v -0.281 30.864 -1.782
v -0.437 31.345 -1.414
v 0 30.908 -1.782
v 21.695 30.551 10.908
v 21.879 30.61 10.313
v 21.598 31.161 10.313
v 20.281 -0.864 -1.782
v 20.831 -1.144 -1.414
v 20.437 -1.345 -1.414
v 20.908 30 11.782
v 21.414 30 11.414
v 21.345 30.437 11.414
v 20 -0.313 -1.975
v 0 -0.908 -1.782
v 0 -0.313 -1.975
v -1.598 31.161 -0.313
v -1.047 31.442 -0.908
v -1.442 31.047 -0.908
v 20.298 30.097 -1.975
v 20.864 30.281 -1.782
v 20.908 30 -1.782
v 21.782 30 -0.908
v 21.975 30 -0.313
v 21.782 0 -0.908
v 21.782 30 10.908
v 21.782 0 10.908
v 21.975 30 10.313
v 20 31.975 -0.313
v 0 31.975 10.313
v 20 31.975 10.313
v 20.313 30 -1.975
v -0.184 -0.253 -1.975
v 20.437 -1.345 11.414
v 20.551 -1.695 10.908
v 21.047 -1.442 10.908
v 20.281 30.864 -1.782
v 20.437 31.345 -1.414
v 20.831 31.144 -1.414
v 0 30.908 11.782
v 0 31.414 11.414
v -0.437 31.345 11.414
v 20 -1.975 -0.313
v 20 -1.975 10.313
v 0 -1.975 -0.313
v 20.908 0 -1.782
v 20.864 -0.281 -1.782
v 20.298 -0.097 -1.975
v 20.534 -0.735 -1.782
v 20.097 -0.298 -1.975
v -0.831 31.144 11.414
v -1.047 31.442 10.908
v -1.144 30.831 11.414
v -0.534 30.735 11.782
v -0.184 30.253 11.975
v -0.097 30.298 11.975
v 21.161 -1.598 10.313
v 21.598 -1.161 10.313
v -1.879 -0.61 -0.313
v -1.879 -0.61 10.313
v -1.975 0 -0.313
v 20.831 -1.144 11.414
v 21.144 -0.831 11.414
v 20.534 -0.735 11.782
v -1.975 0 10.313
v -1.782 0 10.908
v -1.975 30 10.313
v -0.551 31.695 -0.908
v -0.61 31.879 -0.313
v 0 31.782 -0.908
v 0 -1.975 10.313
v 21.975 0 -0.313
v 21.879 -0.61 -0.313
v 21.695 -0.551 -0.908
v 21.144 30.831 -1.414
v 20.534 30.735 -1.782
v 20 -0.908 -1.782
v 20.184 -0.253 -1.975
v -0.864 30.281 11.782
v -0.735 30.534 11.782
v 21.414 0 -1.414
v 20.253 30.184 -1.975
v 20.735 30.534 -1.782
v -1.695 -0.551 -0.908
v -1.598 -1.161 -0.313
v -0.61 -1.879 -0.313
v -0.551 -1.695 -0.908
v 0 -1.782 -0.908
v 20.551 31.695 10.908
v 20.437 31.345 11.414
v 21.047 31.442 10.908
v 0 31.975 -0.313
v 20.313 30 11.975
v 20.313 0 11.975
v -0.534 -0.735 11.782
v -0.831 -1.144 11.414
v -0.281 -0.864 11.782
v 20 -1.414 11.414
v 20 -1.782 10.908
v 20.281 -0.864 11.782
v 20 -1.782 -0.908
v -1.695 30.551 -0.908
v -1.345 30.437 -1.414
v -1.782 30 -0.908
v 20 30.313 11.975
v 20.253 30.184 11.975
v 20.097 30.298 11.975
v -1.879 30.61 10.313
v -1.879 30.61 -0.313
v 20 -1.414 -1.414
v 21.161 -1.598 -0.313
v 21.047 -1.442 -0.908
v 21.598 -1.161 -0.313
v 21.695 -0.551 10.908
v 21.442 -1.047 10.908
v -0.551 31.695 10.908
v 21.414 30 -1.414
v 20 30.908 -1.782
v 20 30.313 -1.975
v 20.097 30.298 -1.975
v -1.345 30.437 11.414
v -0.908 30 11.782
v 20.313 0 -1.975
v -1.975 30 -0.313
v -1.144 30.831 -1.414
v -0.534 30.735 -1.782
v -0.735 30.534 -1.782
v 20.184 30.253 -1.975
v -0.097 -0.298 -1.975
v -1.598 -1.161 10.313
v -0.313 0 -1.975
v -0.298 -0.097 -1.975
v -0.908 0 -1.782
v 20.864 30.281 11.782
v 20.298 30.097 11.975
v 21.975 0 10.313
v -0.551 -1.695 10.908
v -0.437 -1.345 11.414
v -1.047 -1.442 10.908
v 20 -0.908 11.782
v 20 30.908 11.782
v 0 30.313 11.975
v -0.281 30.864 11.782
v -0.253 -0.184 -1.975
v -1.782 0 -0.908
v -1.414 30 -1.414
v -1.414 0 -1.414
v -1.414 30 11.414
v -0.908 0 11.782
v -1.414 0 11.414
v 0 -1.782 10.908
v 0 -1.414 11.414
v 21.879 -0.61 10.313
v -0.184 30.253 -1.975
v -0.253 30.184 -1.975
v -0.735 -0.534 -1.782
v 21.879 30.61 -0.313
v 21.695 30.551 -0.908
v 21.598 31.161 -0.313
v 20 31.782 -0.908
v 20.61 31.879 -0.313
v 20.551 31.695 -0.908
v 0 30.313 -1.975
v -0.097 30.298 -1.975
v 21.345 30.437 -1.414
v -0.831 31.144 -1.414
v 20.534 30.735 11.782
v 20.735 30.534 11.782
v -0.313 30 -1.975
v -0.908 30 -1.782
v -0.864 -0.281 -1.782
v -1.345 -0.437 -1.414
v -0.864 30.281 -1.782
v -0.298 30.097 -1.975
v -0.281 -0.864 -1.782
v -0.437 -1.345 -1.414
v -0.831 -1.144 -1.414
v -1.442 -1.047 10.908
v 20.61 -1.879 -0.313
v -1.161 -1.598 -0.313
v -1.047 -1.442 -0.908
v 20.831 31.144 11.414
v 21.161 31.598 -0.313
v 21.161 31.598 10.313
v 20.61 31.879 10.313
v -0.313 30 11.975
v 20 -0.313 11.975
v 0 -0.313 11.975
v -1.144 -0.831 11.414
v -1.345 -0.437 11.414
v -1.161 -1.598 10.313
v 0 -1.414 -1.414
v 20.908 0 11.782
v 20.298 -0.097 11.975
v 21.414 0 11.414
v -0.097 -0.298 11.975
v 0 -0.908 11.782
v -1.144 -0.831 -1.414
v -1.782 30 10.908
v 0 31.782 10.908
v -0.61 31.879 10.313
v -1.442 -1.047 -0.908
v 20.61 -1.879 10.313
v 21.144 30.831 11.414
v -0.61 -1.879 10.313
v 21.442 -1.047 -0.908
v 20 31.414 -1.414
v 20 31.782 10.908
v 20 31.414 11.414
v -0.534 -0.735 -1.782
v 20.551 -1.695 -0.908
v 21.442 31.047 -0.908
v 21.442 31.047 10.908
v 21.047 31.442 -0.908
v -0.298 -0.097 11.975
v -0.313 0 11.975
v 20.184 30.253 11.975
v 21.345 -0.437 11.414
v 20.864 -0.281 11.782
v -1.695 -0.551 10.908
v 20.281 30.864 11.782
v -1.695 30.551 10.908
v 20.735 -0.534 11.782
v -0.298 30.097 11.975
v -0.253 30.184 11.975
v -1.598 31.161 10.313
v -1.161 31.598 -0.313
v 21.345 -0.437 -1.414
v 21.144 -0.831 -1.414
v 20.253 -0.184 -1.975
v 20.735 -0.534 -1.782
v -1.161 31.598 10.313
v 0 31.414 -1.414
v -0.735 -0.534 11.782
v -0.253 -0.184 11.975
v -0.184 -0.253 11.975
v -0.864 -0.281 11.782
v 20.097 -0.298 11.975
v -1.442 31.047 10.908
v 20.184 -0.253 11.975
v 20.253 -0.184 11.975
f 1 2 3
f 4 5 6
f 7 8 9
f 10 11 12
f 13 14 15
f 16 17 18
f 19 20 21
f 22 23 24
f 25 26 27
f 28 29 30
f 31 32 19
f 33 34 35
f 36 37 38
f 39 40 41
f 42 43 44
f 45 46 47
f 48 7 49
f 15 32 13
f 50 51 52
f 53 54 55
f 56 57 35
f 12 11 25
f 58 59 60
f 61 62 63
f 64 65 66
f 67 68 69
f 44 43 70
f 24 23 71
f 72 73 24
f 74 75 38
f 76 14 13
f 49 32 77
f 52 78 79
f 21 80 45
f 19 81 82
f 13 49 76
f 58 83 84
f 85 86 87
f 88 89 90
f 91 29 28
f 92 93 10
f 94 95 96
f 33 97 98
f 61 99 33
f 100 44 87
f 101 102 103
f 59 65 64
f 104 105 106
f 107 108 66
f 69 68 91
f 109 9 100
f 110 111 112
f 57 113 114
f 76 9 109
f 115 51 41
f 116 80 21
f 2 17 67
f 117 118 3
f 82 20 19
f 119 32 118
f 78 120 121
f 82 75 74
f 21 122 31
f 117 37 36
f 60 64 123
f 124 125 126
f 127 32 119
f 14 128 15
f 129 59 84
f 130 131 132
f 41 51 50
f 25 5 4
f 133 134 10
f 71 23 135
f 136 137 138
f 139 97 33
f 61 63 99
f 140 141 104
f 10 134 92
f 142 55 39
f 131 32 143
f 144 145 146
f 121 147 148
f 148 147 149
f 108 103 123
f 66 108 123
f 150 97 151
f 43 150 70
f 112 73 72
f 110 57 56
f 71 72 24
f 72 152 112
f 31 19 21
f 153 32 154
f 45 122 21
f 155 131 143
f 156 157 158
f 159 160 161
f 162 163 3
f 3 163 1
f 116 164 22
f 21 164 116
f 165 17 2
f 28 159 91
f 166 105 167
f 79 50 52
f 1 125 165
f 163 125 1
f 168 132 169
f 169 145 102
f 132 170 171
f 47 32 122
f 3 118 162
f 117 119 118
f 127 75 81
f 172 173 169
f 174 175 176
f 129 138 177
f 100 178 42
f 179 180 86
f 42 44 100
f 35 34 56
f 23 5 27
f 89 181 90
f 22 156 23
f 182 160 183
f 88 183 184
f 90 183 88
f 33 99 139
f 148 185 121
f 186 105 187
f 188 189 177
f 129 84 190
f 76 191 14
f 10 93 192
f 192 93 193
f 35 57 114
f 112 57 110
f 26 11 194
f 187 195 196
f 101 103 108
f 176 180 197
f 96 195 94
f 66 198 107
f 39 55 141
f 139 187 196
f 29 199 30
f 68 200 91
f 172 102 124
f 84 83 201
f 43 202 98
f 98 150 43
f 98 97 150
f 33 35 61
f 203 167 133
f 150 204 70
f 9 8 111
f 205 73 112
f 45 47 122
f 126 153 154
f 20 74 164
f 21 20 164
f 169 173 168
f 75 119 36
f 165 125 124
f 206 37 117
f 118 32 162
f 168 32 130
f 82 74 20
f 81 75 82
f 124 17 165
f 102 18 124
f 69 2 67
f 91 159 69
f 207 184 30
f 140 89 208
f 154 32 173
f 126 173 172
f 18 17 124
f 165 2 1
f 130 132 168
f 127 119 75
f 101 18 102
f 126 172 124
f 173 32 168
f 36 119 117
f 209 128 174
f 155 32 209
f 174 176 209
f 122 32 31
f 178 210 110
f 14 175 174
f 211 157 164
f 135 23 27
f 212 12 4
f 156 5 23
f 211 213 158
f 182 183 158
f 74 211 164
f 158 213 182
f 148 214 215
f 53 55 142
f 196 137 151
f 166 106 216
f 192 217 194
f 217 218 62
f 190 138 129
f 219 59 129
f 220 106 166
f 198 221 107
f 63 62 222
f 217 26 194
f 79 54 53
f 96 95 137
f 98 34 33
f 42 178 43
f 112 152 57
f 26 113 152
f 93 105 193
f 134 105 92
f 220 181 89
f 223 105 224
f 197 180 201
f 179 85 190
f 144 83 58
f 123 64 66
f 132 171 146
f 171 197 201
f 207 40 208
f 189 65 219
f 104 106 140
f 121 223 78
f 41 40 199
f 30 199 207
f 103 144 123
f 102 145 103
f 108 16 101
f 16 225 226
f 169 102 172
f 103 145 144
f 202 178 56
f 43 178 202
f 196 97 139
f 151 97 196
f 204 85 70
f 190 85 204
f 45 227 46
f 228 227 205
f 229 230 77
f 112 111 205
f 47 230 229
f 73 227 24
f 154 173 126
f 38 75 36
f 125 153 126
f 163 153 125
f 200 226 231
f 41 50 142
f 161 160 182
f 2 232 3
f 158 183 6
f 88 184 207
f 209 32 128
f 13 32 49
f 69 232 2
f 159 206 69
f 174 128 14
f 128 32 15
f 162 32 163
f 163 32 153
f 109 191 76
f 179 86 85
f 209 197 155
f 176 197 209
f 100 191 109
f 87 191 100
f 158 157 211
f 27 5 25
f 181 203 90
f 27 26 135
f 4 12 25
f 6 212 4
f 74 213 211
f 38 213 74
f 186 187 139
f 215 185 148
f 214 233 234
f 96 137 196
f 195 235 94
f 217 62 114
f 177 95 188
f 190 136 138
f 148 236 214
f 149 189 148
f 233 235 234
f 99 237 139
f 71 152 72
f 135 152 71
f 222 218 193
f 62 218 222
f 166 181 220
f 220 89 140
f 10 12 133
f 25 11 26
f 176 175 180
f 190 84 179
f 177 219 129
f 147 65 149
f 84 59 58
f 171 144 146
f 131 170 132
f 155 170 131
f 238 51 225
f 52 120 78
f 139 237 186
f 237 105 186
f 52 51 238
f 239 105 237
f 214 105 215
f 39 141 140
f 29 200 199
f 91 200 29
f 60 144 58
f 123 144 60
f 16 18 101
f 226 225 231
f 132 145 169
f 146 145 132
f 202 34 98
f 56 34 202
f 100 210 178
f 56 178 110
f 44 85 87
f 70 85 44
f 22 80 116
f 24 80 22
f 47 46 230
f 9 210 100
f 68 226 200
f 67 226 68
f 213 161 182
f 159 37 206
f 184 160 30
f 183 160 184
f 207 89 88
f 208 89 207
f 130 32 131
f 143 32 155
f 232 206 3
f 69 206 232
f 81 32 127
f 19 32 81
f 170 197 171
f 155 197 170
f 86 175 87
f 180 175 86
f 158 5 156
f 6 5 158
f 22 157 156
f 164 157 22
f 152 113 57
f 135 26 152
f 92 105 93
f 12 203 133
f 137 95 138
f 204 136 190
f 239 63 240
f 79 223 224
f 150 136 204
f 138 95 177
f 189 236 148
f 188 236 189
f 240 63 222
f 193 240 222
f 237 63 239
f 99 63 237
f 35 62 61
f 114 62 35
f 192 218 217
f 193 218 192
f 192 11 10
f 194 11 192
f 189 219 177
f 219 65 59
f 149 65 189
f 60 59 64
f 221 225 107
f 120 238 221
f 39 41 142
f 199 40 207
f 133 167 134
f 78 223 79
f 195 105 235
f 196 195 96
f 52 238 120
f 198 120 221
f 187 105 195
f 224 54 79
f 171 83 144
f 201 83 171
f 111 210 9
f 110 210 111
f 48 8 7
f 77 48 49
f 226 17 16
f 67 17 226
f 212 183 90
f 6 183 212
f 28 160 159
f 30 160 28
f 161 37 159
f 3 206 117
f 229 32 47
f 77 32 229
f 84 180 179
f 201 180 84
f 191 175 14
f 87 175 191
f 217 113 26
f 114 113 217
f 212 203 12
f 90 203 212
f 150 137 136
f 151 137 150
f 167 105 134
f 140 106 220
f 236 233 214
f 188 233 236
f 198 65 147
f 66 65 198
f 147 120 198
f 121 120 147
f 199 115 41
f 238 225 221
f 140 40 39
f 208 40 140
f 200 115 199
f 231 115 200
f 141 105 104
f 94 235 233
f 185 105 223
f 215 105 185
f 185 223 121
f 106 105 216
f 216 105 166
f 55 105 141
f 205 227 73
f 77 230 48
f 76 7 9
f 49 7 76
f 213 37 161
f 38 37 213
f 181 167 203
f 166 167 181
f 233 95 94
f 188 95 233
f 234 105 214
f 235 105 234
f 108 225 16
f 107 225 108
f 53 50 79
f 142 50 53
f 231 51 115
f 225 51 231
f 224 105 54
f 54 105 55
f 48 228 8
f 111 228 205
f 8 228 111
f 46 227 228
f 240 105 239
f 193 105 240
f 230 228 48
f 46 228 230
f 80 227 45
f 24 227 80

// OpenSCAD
// Rounded box using minkowski
minkowski() {
    cube([20, 30, 10]);
    sphere(r = 2, $fn = 20);
}
